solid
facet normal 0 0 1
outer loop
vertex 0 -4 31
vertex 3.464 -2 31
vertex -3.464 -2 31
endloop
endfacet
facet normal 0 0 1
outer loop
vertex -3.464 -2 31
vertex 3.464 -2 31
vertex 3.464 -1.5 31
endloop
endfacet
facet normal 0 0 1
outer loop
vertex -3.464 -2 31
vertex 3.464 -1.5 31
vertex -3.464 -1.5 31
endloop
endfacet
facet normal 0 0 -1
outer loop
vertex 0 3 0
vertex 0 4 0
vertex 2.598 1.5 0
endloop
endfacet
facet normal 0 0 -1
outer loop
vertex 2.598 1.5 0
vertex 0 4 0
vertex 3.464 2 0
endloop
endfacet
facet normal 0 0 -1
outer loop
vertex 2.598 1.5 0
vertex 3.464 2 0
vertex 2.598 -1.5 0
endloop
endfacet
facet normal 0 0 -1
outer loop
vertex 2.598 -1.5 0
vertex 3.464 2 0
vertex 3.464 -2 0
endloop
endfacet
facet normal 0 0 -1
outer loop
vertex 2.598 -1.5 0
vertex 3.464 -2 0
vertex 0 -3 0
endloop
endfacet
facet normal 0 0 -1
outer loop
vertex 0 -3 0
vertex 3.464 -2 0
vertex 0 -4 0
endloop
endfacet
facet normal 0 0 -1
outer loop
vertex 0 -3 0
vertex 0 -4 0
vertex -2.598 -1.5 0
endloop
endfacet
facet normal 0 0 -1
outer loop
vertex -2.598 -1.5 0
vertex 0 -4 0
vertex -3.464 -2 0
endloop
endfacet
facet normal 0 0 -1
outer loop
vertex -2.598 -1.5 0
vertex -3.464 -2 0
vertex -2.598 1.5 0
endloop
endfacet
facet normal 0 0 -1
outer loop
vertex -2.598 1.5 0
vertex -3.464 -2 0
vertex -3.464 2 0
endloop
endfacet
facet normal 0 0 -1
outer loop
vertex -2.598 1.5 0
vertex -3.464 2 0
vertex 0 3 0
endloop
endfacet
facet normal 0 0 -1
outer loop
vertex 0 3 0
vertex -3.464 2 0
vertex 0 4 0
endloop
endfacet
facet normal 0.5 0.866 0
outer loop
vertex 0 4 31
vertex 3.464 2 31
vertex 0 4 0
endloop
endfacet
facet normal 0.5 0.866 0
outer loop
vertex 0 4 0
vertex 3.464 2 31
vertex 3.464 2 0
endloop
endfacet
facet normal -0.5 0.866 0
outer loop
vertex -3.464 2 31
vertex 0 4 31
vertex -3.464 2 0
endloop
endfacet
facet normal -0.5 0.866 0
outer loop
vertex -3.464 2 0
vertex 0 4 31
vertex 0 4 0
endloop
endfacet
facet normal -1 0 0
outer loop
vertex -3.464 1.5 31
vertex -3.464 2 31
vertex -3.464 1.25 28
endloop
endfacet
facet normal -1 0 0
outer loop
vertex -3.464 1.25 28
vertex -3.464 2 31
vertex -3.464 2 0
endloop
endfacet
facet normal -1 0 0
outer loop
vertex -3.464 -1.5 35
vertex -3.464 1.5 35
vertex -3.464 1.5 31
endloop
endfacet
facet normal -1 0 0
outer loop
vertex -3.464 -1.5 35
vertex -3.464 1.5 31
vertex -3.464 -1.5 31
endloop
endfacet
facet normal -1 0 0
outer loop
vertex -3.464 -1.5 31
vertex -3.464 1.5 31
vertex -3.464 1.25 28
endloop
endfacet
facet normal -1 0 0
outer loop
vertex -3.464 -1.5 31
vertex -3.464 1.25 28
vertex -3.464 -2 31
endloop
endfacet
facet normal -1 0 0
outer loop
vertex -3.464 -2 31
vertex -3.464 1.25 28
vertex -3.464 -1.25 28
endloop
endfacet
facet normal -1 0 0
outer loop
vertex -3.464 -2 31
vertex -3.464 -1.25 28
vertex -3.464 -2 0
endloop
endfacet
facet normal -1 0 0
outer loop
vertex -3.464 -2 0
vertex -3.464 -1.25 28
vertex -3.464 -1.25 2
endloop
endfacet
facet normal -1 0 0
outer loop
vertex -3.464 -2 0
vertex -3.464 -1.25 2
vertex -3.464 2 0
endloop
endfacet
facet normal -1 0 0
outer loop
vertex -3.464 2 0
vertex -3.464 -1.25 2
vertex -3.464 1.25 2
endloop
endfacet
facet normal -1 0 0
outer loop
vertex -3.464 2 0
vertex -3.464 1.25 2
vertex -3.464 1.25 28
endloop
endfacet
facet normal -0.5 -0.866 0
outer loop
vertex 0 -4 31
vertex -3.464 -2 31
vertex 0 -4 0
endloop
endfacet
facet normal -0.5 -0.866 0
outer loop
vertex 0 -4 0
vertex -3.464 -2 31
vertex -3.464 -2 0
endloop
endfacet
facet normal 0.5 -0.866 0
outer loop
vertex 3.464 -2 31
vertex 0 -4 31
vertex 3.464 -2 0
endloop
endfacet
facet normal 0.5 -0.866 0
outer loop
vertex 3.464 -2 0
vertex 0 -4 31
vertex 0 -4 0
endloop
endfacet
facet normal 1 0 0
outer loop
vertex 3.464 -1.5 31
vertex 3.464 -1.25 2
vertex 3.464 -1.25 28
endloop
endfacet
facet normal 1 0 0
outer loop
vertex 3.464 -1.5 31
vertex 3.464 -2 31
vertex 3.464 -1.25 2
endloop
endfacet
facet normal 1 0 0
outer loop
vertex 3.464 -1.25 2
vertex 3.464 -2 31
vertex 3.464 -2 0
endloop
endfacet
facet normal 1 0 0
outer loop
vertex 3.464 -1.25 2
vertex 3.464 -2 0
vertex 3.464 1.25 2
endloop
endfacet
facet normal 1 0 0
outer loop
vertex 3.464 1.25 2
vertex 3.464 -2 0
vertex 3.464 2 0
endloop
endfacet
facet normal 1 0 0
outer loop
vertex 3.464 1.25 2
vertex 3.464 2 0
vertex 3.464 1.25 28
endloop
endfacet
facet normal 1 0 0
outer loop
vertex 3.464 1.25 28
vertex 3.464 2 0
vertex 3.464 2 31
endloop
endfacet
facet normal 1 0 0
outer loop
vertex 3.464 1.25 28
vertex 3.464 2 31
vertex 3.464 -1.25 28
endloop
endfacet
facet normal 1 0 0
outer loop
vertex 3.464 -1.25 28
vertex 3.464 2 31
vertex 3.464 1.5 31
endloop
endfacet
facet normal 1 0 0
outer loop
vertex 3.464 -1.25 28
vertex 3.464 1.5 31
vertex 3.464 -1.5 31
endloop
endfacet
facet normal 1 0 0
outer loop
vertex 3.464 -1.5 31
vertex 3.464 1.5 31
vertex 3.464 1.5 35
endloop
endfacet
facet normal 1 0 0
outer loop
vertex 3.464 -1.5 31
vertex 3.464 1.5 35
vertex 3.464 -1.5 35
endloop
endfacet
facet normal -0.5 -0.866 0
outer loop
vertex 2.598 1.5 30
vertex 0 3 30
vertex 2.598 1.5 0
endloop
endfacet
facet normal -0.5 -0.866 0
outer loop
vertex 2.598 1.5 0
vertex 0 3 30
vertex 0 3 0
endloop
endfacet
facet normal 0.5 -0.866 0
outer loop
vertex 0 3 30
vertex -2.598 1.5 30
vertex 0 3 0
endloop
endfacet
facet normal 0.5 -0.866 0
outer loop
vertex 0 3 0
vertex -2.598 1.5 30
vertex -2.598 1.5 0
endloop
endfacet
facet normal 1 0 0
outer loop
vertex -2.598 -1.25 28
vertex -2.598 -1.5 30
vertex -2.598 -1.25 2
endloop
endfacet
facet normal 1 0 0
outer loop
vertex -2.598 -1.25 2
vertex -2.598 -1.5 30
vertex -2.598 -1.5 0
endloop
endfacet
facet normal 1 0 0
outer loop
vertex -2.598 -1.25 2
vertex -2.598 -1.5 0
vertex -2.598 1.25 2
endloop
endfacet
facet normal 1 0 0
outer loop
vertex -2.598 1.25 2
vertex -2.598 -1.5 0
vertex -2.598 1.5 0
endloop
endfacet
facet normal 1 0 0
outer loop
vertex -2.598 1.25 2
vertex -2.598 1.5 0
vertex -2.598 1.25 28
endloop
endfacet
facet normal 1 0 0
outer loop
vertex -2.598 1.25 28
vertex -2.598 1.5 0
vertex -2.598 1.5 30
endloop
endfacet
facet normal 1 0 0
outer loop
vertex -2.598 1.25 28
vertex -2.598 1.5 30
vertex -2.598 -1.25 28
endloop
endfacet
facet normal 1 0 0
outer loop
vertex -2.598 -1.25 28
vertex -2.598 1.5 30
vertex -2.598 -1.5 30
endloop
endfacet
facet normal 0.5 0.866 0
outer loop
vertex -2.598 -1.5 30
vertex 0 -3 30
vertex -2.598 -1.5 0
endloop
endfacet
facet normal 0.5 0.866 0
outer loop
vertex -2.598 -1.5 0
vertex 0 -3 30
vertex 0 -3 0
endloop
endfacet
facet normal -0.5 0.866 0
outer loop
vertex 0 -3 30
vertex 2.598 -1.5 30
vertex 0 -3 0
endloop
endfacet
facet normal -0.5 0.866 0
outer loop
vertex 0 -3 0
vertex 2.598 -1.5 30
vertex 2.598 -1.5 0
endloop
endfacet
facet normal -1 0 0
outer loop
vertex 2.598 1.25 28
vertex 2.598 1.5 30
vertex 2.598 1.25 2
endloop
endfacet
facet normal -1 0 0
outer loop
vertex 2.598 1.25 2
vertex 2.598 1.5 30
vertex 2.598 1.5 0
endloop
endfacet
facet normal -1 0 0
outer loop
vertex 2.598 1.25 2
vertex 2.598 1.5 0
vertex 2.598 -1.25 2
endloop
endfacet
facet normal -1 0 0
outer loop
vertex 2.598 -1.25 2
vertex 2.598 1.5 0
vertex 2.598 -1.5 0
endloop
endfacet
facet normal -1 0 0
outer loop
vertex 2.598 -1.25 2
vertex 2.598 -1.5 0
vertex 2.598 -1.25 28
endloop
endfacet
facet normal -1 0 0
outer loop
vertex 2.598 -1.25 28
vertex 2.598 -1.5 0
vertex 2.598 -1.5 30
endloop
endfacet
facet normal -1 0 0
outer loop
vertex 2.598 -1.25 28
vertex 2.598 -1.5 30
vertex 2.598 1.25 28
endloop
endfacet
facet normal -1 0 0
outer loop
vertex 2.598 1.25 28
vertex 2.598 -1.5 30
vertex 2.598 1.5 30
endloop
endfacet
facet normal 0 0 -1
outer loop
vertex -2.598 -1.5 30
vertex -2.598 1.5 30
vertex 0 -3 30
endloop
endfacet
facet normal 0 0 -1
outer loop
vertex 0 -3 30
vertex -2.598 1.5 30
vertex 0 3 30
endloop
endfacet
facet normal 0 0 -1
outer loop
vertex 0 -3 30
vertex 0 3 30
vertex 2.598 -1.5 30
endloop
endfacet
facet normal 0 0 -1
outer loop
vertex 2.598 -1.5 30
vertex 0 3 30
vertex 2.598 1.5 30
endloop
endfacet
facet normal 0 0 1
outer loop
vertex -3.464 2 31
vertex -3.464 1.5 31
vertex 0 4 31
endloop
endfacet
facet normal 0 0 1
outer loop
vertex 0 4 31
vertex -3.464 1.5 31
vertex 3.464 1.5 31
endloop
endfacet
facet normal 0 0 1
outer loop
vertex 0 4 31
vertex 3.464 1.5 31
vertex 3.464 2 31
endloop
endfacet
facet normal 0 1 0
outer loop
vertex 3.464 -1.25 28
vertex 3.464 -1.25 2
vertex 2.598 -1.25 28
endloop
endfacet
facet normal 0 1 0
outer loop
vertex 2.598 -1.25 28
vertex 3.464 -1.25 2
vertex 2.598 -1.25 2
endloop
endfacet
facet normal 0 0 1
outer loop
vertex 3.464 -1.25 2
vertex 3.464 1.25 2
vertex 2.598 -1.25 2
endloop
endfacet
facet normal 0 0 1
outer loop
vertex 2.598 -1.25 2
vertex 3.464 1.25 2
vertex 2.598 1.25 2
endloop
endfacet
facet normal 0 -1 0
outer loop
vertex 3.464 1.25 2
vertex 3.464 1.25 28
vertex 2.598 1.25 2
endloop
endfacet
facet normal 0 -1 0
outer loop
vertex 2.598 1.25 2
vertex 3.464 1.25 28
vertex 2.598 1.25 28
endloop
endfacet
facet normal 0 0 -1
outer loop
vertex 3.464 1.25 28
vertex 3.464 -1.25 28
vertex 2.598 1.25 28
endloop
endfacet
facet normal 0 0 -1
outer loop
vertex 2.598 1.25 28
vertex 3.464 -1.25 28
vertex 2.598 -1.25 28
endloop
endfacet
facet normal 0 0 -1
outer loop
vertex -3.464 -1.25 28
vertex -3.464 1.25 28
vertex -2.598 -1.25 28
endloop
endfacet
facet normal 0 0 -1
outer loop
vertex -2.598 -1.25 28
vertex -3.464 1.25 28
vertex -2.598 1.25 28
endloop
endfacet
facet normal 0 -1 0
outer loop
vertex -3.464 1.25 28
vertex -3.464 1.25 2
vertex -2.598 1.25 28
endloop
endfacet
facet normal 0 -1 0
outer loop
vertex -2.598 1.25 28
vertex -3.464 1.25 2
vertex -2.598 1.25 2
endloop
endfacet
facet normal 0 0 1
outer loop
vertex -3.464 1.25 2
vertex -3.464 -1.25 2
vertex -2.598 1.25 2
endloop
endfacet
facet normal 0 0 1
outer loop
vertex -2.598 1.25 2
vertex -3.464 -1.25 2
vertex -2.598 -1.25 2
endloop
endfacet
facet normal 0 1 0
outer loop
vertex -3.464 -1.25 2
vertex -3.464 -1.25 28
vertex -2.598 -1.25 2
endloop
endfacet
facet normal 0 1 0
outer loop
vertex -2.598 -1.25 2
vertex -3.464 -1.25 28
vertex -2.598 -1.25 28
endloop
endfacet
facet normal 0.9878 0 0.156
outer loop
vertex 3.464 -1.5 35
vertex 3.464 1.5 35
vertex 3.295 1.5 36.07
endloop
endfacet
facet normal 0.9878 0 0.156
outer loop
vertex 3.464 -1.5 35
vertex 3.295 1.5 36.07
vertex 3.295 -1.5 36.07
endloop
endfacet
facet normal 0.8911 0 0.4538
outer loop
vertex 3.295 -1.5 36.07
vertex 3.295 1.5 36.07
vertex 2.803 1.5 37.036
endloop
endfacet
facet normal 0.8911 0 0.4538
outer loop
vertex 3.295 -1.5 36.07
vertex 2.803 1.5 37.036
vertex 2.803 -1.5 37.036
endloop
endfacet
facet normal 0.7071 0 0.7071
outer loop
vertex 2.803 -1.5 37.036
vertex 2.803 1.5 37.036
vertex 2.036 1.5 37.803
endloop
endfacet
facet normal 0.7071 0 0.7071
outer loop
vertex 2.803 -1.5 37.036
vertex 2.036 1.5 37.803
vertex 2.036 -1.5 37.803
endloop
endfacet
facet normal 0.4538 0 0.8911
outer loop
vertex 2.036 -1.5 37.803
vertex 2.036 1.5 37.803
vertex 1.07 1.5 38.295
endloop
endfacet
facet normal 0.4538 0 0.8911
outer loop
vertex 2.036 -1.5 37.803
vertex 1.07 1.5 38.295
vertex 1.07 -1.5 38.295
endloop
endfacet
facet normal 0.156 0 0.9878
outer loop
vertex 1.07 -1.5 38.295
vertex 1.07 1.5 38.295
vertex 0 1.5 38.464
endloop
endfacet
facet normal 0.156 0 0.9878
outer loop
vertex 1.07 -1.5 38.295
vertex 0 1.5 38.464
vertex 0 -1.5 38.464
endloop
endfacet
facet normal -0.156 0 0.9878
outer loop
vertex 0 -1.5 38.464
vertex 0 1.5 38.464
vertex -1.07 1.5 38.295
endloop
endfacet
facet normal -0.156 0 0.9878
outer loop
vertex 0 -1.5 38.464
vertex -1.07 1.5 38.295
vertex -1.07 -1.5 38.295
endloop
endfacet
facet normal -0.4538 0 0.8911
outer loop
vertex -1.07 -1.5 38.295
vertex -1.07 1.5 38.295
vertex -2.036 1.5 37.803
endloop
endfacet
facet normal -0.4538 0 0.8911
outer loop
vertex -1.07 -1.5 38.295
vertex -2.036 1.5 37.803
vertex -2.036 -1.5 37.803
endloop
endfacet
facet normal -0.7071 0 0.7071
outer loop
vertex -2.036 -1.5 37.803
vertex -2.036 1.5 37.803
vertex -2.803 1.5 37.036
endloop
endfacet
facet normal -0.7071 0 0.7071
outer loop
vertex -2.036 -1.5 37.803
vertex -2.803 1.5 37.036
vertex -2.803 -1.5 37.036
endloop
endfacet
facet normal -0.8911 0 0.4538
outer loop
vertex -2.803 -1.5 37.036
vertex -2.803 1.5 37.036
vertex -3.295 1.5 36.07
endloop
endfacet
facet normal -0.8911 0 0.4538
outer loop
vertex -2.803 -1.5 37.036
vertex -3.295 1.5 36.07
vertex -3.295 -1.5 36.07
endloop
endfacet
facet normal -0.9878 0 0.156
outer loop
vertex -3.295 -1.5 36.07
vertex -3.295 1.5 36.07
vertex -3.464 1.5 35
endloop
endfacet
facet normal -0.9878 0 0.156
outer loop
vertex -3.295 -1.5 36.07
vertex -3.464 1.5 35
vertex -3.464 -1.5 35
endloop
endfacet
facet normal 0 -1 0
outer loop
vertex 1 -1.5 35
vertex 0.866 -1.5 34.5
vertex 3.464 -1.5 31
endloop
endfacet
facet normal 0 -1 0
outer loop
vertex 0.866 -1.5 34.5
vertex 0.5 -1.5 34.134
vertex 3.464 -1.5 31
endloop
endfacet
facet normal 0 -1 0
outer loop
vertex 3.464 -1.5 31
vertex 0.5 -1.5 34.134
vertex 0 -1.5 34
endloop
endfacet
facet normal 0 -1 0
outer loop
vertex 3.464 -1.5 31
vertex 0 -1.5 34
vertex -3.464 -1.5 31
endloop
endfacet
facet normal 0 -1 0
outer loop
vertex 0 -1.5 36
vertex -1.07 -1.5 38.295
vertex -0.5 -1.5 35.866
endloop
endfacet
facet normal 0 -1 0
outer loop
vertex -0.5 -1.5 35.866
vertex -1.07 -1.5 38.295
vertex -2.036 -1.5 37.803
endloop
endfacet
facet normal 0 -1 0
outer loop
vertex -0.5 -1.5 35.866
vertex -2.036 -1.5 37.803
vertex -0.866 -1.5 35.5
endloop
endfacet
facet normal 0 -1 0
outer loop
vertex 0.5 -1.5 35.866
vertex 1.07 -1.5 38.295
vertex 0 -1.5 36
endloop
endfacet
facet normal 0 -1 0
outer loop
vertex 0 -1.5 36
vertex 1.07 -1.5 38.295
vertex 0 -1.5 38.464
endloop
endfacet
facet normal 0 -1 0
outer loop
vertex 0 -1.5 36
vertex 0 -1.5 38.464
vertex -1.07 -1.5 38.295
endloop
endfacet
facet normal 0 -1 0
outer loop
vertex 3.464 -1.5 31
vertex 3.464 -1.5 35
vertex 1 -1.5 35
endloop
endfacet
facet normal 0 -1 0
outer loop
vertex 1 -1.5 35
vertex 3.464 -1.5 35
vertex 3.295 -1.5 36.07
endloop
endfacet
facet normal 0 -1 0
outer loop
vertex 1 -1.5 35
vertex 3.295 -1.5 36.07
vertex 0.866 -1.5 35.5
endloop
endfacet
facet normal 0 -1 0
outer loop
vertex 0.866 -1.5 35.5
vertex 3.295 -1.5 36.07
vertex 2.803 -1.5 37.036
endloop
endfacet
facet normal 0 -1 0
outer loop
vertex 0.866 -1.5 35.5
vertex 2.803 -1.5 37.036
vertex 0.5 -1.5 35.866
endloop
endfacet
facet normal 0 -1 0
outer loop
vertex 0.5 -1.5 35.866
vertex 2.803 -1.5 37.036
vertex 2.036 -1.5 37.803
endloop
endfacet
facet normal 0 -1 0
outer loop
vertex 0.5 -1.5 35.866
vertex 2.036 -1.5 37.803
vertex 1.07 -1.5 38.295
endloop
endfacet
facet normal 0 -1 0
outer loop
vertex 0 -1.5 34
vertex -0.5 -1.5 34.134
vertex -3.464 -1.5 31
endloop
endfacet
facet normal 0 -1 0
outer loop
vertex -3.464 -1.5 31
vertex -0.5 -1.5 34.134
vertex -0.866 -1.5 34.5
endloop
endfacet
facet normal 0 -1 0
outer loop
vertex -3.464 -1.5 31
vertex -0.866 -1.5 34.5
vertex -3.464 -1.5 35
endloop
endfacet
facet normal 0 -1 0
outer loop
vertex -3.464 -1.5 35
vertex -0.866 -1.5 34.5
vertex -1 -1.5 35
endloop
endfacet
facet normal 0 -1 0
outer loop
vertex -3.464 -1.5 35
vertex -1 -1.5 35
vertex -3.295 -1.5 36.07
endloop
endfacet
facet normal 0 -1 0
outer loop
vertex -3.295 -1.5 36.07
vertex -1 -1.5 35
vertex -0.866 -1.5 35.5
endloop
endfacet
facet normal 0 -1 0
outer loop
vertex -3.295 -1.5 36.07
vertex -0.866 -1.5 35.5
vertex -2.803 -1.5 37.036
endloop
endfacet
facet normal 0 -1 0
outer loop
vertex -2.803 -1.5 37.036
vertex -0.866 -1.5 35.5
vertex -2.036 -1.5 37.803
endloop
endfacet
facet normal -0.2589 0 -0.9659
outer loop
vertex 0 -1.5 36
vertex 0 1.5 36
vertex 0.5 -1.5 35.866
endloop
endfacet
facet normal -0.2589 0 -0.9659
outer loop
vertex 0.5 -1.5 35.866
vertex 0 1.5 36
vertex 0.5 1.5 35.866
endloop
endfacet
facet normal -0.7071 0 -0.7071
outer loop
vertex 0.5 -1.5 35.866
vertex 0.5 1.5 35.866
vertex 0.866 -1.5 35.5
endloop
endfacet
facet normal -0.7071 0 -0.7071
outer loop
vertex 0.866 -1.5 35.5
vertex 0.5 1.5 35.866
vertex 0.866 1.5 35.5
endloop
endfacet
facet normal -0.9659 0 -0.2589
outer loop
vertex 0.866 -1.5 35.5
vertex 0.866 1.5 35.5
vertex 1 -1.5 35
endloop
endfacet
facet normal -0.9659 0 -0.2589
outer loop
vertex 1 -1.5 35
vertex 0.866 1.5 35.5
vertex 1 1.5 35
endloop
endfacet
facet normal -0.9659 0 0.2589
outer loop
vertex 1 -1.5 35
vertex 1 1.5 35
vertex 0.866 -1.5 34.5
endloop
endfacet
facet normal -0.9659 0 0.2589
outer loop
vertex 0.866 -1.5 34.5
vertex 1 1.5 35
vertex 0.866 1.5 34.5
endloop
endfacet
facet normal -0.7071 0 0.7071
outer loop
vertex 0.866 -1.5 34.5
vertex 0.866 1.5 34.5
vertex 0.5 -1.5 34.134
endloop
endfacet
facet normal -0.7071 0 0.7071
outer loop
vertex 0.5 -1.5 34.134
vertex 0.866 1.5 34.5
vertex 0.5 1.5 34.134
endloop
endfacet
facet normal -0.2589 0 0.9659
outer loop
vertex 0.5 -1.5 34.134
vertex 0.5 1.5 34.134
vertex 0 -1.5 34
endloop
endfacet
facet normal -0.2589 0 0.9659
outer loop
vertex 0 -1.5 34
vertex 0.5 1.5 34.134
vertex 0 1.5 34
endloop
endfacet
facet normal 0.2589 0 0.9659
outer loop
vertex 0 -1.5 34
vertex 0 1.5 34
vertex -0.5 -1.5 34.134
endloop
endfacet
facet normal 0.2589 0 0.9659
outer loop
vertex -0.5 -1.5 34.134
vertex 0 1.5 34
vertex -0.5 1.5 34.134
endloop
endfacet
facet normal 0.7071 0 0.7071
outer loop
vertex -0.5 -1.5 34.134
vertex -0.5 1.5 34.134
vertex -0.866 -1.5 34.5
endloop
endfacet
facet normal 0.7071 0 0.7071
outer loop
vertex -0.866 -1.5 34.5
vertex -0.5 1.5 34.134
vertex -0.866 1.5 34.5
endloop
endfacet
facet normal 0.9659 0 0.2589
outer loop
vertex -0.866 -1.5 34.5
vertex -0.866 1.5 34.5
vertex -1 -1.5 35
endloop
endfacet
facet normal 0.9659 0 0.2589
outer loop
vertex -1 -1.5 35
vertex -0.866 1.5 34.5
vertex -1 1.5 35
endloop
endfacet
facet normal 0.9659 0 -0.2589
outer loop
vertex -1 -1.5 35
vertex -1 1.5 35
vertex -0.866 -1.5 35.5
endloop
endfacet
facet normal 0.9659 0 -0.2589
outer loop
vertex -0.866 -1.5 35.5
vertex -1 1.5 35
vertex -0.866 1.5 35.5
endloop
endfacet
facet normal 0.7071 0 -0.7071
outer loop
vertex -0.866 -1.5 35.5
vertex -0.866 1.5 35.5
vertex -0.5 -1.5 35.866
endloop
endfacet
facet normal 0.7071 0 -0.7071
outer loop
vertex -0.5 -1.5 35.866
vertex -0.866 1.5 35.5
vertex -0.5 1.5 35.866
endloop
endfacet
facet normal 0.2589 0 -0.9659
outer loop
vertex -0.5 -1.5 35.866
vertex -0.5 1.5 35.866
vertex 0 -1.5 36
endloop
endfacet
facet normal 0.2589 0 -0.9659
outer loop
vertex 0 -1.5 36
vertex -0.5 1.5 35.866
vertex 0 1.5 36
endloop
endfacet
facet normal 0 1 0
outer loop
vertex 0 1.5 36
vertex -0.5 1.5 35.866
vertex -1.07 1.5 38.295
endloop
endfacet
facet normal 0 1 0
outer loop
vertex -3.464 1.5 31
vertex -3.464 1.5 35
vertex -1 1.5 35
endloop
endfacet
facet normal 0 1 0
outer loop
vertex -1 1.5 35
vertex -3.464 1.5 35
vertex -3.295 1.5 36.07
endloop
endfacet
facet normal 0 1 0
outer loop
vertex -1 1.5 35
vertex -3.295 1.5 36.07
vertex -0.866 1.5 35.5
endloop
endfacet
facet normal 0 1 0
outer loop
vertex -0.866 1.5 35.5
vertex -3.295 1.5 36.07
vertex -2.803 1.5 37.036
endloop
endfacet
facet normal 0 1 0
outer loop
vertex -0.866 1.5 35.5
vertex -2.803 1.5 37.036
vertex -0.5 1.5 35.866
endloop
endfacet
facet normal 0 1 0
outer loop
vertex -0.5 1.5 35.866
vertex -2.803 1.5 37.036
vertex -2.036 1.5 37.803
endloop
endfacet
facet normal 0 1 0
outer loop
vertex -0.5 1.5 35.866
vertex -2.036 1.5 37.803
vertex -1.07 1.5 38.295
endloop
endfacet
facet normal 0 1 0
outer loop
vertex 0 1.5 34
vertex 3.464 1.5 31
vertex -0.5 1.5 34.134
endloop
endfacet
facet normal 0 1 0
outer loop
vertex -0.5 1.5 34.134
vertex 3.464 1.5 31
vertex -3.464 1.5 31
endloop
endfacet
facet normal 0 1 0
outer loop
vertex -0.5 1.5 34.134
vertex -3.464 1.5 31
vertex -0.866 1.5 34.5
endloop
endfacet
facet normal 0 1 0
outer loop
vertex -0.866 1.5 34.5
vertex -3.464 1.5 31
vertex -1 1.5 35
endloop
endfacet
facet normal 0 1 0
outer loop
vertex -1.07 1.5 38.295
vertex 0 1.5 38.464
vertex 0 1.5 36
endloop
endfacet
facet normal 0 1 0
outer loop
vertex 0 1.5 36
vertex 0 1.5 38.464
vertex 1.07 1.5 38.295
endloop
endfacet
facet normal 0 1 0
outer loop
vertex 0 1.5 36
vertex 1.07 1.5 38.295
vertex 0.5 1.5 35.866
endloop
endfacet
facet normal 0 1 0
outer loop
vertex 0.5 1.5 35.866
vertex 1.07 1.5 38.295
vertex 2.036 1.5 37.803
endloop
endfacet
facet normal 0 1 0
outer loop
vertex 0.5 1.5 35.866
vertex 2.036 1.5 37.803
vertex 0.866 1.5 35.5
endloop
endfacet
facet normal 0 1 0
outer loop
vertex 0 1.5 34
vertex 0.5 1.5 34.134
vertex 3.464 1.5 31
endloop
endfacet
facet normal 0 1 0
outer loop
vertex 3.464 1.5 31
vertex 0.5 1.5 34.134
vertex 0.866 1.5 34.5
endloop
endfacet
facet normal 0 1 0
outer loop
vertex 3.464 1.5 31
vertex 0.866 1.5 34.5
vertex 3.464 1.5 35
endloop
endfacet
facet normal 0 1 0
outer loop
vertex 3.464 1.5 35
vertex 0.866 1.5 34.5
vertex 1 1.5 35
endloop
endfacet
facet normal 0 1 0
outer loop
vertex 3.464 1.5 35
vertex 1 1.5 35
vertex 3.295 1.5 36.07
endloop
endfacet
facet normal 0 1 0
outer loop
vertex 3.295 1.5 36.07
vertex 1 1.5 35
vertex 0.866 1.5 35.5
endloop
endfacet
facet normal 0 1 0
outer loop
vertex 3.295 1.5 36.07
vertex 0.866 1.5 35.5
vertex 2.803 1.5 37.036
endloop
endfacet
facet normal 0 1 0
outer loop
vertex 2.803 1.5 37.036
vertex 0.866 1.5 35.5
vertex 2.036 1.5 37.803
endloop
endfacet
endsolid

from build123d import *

# Parameters (mm, degrees)
EXTRUDE_1_DEPTH      = 30
EXTRUDE_2_DEPTH      = 1
SKETCH_3_W           = 26
SKETCH_3_H           = 2.5
CUT_EXTRUDE_1_DEPTH  = 6.928203
SKETCH_7_R           = 1
EXTRUDE_3_DEPTH      = 1.5
EXTRUDE_3_DEPTH_BACK = 1.5


with BuildPart() as part:
    # 스케치1 → 보스-돌출1 (new body)
    with BuildSketch(Plane.XY):
        Polygon((0, 4), (-3.464101615, 2), (-3.464101615, -2), (0, -4), (3.464101615, -2), (3.464101615, 2), align=None)
        Polygon((0, 3), (-2.598076211, 1.5), (-2.598076211, -1.5), (0, -3), (2.598076211, -1.5), (2.598076211, 1.5), align=None, mode=Mode.SUBTRACT)
    extrude(amount=EXTRUDE_1_DEPTH)

    # 스케치4 → 보스-돌출2 (add)
    with BuildSketch(Plane.XY.offset(30)):
        Polygon((0, 4), (-3.464101615, 2), (-3.464101615, -2), (0, -4), (3.464101615, -2), (3.464101615, 2), align=None)
    extrude(amount=EXTRUDE_2_DEPTH)

    # 스케치3 → 컷-돌출1 (cut)
    with BuildSketch(Plane(origin=(3.464101615, 0, 0), x_dir=(0, 0, -1), z_dir=(1, 0, 0))):
        with Locations((-15, 0)):
            Rectangle(SKETCH_3_W, SKETCH_3_H)
    extrude(amount=-CUT_EXTRUDE_1_DEPTH, mode=Mode.SUBTRACT)

    # 스케치7 → 보스-돌출3 (add, two sides)
    with BuildSketch(Plane(origin=(0, 0, 0), x_dir=(1, 0, 0), z_dir=(0, 1, 0))) as extrude_3_sk:
        with BuildLine():
            Line((3.464101615, -31), (-3.464101615, -31))
            Line((-3.464101615, -31), (-3.464101615, -35))
            ThreePointArc((-3.464101615, -35), (0, -38.464101615), (3.464101615, -35))
            Line((3.464101615, -35), (3.464101615, -31))
        make_face()
        with Locations((0, -35)):
            Circle(SKETCH_7_R, mode=Mode.SUBTRACT)
    extrude(amount=EXTRUDE_3_DEPTH)
    extrude(extrude_3_sk.sketch, amount=-EXTRUDE_3_DEPTH_BACK)


solid = part.part
